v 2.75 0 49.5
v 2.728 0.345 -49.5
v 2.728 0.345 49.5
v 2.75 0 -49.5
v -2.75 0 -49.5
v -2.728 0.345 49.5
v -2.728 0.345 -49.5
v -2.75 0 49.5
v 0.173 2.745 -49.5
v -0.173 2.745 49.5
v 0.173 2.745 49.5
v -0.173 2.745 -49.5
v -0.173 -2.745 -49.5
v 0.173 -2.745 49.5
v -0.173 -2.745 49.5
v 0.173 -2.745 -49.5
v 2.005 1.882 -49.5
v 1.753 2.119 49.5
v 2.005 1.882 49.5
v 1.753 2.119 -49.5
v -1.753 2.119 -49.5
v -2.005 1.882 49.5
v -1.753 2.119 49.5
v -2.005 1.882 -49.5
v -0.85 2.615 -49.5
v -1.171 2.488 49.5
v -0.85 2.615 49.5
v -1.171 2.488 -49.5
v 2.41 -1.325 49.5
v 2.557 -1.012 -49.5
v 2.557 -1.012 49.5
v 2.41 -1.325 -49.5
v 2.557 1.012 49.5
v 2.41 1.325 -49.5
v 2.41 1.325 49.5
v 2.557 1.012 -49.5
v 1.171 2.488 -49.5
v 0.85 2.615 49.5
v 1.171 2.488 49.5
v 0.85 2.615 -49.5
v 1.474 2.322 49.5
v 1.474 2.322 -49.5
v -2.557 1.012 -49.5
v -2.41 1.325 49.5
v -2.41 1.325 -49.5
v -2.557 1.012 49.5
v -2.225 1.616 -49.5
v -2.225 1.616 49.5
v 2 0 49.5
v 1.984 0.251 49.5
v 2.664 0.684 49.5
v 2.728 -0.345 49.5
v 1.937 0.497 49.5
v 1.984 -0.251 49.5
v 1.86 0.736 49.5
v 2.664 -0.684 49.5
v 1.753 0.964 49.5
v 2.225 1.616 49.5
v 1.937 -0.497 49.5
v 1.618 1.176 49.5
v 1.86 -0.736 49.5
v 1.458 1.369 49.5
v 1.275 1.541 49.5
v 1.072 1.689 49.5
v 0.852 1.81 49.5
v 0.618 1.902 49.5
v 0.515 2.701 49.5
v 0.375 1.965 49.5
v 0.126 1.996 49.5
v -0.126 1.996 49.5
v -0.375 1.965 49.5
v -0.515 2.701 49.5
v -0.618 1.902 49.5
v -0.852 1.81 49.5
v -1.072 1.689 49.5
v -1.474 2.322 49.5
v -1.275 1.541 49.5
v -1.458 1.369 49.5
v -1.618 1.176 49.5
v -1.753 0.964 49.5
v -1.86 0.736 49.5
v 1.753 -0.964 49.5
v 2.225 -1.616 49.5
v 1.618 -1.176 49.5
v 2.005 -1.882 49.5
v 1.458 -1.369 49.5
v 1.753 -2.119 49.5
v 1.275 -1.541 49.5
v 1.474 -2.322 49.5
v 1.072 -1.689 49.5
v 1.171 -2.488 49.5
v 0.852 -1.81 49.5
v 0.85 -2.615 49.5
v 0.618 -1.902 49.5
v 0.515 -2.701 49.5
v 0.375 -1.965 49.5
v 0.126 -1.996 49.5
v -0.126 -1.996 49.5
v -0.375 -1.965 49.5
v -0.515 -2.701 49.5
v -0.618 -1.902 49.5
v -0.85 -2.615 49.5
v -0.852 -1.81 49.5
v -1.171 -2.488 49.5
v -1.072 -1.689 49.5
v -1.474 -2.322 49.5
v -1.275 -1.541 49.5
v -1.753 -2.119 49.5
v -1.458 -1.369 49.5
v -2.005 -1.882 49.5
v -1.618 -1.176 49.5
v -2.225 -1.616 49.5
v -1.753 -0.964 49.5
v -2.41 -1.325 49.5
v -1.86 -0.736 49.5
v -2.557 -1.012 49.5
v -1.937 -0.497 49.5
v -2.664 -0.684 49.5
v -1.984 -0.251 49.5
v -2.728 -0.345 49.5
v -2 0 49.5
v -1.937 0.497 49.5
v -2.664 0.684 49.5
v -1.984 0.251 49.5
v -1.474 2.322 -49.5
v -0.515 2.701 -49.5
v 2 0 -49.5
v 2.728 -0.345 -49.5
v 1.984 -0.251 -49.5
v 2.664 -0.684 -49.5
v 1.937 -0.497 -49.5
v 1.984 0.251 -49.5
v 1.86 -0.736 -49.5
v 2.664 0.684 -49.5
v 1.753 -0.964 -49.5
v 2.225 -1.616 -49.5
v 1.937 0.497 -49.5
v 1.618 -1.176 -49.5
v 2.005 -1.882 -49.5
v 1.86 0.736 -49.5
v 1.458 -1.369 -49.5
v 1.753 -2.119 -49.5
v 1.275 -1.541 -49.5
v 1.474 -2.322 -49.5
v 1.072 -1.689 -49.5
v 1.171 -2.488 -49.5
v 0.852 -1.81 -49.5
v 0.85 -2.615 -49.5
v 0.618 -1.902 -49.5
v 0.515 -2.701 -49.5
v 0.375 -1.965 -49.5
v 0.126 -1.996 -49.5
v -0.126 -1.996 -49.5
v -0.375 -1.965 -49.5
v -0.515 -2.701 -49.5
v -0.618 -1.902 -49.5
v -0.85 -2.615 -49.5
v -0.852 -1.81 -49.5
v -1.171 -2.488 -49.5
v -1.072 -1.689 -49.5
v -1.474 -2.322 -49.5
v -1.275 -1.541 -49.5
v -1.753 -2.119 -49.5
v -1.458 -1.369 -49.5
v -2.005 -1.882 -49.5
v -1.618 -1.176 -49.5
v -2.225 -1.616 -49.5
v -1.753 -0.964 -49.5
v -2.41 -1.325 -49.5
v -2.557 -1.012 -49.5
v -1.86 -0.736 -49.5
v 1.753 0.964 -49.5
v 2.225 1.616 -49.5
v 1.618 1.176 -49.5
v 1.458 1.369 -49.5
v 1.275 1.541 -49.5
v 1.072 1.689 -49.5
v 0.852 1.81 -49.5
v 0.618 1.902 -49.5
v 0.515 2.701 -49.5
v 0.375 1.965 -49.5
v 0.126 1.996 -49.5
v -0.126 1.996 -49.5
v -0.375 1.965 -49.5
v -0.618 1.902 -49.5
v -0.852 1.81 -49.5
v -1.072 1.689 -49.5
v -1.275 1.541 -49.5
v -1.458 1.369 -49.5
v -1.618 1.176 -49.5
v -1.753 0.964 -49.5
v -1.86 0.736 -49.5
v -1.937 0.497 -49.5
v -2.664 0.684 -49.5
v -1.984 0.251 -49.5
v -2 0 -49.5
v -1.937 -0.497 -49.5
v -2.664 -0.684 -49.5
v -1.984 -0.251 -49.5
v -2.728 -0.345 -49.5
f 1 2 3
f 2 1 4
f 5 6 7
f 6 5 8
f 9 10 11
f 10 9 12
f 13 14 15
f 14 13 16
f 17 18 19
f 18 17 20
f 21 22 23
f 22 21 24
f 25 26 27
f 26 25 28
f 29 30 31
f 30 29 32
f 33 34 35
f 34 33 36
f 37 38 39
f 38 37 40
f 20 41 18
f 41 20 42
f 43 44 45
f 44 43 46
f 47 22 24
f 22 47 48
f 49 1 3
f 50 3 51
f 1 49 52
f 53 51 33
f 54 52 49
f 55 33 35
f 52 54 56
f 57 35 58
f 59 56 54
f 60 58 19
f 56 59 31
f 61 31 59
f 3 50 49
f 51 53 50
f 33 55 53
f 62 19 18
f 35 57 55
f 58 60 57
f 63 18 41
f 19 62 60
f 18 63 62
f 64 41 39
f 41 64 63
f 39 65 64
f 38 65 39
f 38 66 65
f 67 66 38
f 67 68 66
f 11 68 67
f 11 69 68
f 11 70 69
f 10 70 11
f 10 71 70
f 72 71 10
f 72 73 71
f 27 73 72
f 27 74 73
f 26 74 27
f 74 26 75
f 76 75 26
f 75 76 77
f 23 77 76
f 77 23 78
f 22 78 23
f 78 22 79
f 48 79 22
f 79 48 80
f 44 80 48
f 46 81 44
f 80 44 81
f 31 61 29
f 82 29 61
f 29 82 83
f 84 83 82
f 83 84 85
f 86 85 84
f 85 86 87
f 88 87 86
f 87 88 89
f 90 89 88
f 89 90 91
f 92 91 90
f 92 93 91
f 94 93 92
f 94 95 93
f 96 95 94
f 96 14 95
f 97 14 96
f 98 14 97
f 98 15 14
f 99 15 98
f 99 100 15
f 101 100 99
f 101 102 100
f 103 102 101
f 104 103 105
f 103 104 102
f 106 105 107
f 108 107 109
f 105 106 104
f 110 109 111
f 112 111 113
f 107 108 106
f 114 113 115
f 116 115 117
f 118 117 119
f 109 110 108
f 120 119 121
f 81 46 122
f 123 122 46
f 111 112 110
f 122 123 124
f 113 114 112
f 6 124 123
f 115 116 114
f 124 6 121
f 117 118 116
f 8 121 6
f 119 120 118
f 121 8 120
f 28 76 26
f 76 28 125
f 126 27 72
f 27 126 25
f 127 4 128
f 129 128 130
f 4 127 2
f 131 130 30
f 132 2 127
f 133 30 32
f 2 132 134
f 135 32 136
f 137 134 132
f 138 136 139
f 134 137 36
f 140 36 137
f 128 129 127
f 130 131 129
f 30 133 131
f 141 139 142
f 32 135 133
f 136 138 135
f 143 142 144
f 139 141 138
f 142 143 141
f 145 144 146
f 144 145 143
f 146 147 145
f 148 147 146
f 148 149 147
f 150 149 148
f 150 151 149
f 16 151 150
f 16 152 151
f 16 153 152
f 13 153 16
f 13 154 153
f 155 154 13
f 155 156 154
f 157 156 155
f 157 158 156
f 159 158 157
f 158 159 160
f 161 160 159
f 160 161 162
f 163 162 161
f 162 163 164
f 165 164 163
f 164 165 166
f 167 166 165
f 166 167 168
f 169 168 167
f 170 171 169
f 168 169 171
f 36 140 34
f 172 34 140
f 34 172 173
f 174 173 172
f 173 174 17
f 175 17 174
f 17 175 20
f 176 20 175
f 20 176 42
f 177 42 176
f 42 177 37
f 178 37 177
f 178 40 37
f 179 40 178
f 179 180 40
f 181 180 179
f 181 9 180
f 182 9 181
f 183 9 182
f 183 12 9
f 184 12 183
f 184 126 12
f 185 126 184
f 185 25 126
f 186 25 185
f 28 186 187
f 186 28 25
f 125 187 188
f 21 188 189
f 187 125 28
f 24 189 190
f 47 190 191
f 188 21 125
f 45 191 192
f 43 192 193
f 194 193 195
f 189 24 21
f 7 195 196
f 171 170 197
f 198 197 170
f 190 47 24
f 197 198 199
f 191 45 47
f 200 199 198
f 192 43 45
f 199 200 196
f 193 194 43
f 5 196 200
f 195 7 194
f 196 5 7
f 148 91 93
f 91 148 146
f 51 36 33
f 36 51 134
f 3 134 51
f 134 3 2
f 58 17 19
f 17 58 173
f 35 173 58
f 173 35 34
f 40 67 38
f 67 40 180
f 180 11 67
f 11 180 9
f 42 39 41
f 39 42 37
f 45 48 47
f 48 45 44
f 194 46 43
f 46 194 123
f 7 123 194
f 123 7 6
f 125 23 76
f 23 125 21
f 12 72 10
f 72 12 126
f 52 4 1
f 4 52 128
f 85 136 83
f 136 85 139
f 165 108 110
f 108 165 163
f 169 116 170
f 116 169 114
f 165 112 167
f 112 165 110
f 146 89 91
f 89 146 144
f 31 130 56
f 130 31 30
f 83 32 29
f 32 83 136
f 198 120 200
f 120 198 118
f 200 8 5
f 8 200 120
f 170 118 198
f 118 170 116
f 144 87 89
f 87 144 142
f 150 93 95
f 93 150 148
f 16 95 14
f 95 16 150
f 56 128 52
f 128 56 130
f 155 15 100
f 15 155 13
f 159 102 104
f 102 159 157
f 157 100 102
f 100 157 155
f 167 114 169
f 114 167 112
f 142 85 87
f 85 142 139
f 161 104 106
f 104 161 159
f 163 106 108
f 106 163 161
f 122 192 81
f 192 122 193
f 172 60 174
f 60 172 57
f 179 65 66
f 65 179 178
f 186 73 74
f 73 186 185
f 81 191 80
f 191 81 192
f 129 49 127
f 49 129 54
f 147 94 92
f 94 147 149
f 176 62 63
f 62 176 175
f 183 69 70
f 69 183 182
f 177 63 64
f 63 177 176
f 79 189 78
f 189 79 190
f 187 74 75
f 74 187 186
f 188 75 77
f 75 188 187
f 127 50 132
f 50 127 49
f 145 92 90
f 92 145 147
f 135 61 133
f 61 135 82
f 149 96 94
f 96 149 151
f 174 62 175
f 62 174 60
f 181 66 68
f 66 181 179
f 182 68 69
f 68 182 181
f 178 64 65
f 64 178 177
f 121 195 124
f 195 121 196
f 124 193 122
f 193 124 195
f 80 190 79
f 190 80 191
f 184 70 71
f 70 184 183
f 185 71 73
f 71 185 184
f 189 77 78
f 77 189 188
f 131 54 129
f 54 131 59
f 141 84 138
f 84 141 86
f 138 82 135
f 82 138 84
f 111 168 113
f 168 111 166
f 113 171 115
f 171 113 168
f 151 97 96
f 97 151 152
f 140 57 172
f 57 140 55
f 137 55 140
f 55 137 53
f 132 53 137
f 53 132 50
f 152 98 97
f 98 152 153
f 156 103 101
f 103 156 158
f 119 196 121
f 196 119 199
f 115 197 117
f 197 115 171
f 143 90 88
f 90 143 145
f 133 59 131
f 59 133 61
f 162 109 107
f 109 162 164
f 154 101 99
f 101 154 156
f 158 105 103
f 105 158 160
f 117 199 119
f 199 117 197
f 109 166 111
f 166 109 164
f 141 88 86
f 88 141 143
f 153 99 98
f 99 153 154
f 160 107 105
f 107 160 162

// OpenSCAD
$fn = 50;


difference() {
	union() {
		translate(v = [0, 0, -49.5000000000]) {
			cylinder(h = 99, r = 2.7500000000);
		}
	}
	union() {
		translate(v = [0, 0, -100.0000000000]) {
			cylinder(h = 200, r = 2.0000000000);
		}
	}
}
